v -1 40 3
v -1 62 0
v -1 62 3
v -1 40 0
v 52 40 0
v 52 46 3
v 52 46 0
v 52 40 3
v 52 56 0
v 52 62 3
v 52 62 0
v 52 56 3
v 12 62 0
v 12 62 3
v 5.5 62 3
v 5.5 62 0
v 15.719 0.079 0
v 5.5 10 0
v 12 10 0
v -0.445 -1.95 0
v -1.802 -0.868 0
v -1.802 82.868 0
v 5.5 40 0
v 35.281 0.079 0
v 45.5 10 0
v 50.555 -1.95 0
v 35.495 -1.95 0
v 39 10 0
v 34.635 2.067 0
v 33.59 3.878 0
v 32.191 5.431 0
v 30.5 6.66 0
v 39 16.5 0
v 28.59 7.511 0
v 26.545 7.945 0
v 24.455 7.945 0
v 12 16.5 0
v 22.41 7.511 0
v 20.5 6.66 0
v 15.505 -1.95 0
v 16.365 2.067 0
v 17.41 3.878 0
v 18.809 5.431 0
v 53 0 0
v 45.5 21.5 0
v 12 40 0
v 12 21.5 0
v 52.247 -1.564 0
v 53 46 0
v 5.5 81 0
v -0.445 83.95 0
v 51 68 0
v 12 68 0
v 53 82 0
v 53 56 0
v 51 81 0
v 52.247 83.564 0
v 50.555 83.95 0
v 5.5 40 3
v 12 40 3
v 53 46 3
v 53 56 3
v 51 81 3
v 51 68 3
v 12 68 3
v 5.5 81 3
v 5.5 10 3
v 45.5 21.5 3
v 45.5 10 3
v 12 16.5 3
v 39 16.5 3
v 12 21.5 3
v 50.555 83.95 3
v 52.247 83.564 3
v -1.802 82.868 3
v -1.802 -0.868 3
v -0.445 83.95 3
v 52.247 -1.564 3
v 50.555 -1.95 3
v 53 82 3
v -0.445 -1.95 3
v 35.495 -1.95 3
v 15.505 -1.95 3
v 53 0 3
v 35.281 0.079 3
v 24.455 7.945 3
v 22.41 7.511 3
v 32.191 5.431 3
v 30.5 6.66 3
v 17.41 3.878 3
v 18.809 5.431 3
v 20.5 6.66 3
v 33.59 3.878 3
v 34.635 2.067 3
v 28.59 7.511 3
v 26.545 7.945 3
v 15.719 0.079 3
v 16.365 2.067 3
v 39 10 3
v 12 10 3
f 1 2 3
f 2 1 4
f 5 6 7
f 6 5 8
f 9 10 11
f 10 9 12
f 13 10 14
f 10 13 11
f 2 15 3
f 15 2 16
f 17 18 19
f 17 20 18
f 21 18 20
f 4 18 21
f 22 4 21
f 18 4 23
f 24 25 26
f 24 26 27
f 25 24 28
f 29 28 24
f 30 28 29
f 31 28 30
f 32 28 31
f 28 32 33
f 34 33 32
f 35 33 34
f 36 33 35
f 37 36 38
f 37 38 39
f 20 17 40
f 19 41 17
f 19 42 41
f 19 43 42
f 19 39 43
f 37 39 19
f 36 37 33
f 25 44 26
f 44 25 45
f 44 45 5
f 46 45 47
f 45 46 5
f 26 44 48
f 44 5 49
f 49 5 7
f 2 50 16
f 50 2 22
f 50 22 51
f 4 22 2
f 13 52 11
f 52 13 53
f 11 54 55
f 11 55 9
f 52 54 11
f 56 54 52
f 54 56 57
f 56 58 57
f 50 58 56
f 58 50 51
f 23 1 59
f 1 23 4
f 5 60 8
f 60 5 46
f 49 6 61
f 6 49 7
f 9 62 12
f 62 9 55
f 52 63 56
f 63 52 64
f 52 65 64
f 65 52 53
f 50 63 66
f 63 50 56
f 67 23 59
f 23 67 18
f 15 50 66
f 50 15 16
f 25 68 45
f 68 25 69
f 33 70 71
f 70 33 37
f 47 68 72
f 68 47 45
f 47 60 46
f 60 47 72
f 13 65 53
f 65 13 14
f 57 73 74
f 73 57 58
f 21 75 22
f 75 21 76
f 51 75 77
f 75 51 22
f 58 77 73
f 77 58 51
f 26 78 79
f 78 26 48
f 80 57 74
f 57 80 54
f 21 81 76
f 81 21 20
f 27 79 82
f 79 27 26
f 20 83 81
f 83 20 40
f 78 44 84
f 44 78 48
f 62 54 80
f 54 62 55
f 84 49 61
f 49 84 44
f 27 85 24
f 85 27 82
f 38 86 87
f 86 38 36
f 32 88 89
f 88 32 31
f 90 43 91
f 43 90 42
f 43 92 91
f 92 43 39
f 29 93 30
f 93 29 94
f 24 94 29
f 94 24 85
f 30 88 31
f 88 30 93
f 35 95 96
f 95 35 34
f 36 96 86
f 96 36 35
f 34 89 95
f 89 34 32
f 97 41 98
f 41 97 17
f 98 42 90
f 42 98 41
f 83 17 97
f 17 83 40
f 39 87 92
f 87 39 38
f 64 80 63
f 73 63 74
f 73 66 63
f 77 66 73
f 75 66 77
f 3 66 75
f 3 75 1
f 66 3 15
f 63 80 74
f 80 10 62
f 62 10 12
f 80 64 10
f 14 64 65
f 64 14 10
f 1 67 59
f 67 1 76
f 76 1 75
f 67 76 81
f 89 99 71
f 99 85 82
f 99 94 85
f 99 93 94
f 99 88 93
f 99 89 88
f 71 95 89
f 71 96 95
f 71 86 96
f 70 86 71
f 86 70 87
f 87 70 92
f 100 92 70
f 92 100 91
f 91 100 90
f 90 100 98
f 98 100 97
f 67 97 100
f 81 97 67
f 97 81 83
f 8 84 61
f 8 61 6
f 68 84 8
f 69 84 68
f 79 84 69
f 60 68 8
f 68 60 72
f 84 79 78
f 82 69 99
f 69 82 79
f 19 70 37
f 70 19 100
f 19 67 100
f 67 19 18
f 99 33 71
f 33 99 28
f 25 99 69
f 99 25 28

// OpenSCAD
// 55x86x.8mm

difference () {
    minkowski() {
        cylinder(h=2.5, r=2);
        cube([51, 82, 2.5]);
    }

    translate([25.5, -2, -1]) {
        cylinder(h=10, d=20);
    }
    // 86 / 2 43 (-11) 32
    translate([-1, 40, 0]) {
        color("red") {
            cube([53,22,4]);
        }
        translate([0, 6, 0]) {
            cube([200, 10, 4]);
        }
    }
    
    translate([-10, -10, 3]) cube([100, 100, 2]);
    // middle 10 out of 22
    
    
    
// i2c screen
// 30.00 mm × 12.00 mm × 2.00 mm 
    translate([8, 68, 0]) {
        cube([43 , 13, 4]);
        translate([7,0,4]) {
            cube([34,13,4]);
        }
    }
    
    // buttons 6.0 x 6.2 tall legs down
    // 4.0 tall 5 tall to button 3.4diam button
    translate([5.5, 10, 0]) {
        cube([6.5, 6.5, 5]);
    }
    
    translate([55-5.5-6.5-4, 10, 0]) {
        cube([6.5, 6.5, 5]);
    }
    
    // wiring gaps for buttons
    translate([5.5, 16.5, 0]) {
        cube([40, 5, 4]);
        
            cube([6.5, 64.5, 4]);
        
    }
}
